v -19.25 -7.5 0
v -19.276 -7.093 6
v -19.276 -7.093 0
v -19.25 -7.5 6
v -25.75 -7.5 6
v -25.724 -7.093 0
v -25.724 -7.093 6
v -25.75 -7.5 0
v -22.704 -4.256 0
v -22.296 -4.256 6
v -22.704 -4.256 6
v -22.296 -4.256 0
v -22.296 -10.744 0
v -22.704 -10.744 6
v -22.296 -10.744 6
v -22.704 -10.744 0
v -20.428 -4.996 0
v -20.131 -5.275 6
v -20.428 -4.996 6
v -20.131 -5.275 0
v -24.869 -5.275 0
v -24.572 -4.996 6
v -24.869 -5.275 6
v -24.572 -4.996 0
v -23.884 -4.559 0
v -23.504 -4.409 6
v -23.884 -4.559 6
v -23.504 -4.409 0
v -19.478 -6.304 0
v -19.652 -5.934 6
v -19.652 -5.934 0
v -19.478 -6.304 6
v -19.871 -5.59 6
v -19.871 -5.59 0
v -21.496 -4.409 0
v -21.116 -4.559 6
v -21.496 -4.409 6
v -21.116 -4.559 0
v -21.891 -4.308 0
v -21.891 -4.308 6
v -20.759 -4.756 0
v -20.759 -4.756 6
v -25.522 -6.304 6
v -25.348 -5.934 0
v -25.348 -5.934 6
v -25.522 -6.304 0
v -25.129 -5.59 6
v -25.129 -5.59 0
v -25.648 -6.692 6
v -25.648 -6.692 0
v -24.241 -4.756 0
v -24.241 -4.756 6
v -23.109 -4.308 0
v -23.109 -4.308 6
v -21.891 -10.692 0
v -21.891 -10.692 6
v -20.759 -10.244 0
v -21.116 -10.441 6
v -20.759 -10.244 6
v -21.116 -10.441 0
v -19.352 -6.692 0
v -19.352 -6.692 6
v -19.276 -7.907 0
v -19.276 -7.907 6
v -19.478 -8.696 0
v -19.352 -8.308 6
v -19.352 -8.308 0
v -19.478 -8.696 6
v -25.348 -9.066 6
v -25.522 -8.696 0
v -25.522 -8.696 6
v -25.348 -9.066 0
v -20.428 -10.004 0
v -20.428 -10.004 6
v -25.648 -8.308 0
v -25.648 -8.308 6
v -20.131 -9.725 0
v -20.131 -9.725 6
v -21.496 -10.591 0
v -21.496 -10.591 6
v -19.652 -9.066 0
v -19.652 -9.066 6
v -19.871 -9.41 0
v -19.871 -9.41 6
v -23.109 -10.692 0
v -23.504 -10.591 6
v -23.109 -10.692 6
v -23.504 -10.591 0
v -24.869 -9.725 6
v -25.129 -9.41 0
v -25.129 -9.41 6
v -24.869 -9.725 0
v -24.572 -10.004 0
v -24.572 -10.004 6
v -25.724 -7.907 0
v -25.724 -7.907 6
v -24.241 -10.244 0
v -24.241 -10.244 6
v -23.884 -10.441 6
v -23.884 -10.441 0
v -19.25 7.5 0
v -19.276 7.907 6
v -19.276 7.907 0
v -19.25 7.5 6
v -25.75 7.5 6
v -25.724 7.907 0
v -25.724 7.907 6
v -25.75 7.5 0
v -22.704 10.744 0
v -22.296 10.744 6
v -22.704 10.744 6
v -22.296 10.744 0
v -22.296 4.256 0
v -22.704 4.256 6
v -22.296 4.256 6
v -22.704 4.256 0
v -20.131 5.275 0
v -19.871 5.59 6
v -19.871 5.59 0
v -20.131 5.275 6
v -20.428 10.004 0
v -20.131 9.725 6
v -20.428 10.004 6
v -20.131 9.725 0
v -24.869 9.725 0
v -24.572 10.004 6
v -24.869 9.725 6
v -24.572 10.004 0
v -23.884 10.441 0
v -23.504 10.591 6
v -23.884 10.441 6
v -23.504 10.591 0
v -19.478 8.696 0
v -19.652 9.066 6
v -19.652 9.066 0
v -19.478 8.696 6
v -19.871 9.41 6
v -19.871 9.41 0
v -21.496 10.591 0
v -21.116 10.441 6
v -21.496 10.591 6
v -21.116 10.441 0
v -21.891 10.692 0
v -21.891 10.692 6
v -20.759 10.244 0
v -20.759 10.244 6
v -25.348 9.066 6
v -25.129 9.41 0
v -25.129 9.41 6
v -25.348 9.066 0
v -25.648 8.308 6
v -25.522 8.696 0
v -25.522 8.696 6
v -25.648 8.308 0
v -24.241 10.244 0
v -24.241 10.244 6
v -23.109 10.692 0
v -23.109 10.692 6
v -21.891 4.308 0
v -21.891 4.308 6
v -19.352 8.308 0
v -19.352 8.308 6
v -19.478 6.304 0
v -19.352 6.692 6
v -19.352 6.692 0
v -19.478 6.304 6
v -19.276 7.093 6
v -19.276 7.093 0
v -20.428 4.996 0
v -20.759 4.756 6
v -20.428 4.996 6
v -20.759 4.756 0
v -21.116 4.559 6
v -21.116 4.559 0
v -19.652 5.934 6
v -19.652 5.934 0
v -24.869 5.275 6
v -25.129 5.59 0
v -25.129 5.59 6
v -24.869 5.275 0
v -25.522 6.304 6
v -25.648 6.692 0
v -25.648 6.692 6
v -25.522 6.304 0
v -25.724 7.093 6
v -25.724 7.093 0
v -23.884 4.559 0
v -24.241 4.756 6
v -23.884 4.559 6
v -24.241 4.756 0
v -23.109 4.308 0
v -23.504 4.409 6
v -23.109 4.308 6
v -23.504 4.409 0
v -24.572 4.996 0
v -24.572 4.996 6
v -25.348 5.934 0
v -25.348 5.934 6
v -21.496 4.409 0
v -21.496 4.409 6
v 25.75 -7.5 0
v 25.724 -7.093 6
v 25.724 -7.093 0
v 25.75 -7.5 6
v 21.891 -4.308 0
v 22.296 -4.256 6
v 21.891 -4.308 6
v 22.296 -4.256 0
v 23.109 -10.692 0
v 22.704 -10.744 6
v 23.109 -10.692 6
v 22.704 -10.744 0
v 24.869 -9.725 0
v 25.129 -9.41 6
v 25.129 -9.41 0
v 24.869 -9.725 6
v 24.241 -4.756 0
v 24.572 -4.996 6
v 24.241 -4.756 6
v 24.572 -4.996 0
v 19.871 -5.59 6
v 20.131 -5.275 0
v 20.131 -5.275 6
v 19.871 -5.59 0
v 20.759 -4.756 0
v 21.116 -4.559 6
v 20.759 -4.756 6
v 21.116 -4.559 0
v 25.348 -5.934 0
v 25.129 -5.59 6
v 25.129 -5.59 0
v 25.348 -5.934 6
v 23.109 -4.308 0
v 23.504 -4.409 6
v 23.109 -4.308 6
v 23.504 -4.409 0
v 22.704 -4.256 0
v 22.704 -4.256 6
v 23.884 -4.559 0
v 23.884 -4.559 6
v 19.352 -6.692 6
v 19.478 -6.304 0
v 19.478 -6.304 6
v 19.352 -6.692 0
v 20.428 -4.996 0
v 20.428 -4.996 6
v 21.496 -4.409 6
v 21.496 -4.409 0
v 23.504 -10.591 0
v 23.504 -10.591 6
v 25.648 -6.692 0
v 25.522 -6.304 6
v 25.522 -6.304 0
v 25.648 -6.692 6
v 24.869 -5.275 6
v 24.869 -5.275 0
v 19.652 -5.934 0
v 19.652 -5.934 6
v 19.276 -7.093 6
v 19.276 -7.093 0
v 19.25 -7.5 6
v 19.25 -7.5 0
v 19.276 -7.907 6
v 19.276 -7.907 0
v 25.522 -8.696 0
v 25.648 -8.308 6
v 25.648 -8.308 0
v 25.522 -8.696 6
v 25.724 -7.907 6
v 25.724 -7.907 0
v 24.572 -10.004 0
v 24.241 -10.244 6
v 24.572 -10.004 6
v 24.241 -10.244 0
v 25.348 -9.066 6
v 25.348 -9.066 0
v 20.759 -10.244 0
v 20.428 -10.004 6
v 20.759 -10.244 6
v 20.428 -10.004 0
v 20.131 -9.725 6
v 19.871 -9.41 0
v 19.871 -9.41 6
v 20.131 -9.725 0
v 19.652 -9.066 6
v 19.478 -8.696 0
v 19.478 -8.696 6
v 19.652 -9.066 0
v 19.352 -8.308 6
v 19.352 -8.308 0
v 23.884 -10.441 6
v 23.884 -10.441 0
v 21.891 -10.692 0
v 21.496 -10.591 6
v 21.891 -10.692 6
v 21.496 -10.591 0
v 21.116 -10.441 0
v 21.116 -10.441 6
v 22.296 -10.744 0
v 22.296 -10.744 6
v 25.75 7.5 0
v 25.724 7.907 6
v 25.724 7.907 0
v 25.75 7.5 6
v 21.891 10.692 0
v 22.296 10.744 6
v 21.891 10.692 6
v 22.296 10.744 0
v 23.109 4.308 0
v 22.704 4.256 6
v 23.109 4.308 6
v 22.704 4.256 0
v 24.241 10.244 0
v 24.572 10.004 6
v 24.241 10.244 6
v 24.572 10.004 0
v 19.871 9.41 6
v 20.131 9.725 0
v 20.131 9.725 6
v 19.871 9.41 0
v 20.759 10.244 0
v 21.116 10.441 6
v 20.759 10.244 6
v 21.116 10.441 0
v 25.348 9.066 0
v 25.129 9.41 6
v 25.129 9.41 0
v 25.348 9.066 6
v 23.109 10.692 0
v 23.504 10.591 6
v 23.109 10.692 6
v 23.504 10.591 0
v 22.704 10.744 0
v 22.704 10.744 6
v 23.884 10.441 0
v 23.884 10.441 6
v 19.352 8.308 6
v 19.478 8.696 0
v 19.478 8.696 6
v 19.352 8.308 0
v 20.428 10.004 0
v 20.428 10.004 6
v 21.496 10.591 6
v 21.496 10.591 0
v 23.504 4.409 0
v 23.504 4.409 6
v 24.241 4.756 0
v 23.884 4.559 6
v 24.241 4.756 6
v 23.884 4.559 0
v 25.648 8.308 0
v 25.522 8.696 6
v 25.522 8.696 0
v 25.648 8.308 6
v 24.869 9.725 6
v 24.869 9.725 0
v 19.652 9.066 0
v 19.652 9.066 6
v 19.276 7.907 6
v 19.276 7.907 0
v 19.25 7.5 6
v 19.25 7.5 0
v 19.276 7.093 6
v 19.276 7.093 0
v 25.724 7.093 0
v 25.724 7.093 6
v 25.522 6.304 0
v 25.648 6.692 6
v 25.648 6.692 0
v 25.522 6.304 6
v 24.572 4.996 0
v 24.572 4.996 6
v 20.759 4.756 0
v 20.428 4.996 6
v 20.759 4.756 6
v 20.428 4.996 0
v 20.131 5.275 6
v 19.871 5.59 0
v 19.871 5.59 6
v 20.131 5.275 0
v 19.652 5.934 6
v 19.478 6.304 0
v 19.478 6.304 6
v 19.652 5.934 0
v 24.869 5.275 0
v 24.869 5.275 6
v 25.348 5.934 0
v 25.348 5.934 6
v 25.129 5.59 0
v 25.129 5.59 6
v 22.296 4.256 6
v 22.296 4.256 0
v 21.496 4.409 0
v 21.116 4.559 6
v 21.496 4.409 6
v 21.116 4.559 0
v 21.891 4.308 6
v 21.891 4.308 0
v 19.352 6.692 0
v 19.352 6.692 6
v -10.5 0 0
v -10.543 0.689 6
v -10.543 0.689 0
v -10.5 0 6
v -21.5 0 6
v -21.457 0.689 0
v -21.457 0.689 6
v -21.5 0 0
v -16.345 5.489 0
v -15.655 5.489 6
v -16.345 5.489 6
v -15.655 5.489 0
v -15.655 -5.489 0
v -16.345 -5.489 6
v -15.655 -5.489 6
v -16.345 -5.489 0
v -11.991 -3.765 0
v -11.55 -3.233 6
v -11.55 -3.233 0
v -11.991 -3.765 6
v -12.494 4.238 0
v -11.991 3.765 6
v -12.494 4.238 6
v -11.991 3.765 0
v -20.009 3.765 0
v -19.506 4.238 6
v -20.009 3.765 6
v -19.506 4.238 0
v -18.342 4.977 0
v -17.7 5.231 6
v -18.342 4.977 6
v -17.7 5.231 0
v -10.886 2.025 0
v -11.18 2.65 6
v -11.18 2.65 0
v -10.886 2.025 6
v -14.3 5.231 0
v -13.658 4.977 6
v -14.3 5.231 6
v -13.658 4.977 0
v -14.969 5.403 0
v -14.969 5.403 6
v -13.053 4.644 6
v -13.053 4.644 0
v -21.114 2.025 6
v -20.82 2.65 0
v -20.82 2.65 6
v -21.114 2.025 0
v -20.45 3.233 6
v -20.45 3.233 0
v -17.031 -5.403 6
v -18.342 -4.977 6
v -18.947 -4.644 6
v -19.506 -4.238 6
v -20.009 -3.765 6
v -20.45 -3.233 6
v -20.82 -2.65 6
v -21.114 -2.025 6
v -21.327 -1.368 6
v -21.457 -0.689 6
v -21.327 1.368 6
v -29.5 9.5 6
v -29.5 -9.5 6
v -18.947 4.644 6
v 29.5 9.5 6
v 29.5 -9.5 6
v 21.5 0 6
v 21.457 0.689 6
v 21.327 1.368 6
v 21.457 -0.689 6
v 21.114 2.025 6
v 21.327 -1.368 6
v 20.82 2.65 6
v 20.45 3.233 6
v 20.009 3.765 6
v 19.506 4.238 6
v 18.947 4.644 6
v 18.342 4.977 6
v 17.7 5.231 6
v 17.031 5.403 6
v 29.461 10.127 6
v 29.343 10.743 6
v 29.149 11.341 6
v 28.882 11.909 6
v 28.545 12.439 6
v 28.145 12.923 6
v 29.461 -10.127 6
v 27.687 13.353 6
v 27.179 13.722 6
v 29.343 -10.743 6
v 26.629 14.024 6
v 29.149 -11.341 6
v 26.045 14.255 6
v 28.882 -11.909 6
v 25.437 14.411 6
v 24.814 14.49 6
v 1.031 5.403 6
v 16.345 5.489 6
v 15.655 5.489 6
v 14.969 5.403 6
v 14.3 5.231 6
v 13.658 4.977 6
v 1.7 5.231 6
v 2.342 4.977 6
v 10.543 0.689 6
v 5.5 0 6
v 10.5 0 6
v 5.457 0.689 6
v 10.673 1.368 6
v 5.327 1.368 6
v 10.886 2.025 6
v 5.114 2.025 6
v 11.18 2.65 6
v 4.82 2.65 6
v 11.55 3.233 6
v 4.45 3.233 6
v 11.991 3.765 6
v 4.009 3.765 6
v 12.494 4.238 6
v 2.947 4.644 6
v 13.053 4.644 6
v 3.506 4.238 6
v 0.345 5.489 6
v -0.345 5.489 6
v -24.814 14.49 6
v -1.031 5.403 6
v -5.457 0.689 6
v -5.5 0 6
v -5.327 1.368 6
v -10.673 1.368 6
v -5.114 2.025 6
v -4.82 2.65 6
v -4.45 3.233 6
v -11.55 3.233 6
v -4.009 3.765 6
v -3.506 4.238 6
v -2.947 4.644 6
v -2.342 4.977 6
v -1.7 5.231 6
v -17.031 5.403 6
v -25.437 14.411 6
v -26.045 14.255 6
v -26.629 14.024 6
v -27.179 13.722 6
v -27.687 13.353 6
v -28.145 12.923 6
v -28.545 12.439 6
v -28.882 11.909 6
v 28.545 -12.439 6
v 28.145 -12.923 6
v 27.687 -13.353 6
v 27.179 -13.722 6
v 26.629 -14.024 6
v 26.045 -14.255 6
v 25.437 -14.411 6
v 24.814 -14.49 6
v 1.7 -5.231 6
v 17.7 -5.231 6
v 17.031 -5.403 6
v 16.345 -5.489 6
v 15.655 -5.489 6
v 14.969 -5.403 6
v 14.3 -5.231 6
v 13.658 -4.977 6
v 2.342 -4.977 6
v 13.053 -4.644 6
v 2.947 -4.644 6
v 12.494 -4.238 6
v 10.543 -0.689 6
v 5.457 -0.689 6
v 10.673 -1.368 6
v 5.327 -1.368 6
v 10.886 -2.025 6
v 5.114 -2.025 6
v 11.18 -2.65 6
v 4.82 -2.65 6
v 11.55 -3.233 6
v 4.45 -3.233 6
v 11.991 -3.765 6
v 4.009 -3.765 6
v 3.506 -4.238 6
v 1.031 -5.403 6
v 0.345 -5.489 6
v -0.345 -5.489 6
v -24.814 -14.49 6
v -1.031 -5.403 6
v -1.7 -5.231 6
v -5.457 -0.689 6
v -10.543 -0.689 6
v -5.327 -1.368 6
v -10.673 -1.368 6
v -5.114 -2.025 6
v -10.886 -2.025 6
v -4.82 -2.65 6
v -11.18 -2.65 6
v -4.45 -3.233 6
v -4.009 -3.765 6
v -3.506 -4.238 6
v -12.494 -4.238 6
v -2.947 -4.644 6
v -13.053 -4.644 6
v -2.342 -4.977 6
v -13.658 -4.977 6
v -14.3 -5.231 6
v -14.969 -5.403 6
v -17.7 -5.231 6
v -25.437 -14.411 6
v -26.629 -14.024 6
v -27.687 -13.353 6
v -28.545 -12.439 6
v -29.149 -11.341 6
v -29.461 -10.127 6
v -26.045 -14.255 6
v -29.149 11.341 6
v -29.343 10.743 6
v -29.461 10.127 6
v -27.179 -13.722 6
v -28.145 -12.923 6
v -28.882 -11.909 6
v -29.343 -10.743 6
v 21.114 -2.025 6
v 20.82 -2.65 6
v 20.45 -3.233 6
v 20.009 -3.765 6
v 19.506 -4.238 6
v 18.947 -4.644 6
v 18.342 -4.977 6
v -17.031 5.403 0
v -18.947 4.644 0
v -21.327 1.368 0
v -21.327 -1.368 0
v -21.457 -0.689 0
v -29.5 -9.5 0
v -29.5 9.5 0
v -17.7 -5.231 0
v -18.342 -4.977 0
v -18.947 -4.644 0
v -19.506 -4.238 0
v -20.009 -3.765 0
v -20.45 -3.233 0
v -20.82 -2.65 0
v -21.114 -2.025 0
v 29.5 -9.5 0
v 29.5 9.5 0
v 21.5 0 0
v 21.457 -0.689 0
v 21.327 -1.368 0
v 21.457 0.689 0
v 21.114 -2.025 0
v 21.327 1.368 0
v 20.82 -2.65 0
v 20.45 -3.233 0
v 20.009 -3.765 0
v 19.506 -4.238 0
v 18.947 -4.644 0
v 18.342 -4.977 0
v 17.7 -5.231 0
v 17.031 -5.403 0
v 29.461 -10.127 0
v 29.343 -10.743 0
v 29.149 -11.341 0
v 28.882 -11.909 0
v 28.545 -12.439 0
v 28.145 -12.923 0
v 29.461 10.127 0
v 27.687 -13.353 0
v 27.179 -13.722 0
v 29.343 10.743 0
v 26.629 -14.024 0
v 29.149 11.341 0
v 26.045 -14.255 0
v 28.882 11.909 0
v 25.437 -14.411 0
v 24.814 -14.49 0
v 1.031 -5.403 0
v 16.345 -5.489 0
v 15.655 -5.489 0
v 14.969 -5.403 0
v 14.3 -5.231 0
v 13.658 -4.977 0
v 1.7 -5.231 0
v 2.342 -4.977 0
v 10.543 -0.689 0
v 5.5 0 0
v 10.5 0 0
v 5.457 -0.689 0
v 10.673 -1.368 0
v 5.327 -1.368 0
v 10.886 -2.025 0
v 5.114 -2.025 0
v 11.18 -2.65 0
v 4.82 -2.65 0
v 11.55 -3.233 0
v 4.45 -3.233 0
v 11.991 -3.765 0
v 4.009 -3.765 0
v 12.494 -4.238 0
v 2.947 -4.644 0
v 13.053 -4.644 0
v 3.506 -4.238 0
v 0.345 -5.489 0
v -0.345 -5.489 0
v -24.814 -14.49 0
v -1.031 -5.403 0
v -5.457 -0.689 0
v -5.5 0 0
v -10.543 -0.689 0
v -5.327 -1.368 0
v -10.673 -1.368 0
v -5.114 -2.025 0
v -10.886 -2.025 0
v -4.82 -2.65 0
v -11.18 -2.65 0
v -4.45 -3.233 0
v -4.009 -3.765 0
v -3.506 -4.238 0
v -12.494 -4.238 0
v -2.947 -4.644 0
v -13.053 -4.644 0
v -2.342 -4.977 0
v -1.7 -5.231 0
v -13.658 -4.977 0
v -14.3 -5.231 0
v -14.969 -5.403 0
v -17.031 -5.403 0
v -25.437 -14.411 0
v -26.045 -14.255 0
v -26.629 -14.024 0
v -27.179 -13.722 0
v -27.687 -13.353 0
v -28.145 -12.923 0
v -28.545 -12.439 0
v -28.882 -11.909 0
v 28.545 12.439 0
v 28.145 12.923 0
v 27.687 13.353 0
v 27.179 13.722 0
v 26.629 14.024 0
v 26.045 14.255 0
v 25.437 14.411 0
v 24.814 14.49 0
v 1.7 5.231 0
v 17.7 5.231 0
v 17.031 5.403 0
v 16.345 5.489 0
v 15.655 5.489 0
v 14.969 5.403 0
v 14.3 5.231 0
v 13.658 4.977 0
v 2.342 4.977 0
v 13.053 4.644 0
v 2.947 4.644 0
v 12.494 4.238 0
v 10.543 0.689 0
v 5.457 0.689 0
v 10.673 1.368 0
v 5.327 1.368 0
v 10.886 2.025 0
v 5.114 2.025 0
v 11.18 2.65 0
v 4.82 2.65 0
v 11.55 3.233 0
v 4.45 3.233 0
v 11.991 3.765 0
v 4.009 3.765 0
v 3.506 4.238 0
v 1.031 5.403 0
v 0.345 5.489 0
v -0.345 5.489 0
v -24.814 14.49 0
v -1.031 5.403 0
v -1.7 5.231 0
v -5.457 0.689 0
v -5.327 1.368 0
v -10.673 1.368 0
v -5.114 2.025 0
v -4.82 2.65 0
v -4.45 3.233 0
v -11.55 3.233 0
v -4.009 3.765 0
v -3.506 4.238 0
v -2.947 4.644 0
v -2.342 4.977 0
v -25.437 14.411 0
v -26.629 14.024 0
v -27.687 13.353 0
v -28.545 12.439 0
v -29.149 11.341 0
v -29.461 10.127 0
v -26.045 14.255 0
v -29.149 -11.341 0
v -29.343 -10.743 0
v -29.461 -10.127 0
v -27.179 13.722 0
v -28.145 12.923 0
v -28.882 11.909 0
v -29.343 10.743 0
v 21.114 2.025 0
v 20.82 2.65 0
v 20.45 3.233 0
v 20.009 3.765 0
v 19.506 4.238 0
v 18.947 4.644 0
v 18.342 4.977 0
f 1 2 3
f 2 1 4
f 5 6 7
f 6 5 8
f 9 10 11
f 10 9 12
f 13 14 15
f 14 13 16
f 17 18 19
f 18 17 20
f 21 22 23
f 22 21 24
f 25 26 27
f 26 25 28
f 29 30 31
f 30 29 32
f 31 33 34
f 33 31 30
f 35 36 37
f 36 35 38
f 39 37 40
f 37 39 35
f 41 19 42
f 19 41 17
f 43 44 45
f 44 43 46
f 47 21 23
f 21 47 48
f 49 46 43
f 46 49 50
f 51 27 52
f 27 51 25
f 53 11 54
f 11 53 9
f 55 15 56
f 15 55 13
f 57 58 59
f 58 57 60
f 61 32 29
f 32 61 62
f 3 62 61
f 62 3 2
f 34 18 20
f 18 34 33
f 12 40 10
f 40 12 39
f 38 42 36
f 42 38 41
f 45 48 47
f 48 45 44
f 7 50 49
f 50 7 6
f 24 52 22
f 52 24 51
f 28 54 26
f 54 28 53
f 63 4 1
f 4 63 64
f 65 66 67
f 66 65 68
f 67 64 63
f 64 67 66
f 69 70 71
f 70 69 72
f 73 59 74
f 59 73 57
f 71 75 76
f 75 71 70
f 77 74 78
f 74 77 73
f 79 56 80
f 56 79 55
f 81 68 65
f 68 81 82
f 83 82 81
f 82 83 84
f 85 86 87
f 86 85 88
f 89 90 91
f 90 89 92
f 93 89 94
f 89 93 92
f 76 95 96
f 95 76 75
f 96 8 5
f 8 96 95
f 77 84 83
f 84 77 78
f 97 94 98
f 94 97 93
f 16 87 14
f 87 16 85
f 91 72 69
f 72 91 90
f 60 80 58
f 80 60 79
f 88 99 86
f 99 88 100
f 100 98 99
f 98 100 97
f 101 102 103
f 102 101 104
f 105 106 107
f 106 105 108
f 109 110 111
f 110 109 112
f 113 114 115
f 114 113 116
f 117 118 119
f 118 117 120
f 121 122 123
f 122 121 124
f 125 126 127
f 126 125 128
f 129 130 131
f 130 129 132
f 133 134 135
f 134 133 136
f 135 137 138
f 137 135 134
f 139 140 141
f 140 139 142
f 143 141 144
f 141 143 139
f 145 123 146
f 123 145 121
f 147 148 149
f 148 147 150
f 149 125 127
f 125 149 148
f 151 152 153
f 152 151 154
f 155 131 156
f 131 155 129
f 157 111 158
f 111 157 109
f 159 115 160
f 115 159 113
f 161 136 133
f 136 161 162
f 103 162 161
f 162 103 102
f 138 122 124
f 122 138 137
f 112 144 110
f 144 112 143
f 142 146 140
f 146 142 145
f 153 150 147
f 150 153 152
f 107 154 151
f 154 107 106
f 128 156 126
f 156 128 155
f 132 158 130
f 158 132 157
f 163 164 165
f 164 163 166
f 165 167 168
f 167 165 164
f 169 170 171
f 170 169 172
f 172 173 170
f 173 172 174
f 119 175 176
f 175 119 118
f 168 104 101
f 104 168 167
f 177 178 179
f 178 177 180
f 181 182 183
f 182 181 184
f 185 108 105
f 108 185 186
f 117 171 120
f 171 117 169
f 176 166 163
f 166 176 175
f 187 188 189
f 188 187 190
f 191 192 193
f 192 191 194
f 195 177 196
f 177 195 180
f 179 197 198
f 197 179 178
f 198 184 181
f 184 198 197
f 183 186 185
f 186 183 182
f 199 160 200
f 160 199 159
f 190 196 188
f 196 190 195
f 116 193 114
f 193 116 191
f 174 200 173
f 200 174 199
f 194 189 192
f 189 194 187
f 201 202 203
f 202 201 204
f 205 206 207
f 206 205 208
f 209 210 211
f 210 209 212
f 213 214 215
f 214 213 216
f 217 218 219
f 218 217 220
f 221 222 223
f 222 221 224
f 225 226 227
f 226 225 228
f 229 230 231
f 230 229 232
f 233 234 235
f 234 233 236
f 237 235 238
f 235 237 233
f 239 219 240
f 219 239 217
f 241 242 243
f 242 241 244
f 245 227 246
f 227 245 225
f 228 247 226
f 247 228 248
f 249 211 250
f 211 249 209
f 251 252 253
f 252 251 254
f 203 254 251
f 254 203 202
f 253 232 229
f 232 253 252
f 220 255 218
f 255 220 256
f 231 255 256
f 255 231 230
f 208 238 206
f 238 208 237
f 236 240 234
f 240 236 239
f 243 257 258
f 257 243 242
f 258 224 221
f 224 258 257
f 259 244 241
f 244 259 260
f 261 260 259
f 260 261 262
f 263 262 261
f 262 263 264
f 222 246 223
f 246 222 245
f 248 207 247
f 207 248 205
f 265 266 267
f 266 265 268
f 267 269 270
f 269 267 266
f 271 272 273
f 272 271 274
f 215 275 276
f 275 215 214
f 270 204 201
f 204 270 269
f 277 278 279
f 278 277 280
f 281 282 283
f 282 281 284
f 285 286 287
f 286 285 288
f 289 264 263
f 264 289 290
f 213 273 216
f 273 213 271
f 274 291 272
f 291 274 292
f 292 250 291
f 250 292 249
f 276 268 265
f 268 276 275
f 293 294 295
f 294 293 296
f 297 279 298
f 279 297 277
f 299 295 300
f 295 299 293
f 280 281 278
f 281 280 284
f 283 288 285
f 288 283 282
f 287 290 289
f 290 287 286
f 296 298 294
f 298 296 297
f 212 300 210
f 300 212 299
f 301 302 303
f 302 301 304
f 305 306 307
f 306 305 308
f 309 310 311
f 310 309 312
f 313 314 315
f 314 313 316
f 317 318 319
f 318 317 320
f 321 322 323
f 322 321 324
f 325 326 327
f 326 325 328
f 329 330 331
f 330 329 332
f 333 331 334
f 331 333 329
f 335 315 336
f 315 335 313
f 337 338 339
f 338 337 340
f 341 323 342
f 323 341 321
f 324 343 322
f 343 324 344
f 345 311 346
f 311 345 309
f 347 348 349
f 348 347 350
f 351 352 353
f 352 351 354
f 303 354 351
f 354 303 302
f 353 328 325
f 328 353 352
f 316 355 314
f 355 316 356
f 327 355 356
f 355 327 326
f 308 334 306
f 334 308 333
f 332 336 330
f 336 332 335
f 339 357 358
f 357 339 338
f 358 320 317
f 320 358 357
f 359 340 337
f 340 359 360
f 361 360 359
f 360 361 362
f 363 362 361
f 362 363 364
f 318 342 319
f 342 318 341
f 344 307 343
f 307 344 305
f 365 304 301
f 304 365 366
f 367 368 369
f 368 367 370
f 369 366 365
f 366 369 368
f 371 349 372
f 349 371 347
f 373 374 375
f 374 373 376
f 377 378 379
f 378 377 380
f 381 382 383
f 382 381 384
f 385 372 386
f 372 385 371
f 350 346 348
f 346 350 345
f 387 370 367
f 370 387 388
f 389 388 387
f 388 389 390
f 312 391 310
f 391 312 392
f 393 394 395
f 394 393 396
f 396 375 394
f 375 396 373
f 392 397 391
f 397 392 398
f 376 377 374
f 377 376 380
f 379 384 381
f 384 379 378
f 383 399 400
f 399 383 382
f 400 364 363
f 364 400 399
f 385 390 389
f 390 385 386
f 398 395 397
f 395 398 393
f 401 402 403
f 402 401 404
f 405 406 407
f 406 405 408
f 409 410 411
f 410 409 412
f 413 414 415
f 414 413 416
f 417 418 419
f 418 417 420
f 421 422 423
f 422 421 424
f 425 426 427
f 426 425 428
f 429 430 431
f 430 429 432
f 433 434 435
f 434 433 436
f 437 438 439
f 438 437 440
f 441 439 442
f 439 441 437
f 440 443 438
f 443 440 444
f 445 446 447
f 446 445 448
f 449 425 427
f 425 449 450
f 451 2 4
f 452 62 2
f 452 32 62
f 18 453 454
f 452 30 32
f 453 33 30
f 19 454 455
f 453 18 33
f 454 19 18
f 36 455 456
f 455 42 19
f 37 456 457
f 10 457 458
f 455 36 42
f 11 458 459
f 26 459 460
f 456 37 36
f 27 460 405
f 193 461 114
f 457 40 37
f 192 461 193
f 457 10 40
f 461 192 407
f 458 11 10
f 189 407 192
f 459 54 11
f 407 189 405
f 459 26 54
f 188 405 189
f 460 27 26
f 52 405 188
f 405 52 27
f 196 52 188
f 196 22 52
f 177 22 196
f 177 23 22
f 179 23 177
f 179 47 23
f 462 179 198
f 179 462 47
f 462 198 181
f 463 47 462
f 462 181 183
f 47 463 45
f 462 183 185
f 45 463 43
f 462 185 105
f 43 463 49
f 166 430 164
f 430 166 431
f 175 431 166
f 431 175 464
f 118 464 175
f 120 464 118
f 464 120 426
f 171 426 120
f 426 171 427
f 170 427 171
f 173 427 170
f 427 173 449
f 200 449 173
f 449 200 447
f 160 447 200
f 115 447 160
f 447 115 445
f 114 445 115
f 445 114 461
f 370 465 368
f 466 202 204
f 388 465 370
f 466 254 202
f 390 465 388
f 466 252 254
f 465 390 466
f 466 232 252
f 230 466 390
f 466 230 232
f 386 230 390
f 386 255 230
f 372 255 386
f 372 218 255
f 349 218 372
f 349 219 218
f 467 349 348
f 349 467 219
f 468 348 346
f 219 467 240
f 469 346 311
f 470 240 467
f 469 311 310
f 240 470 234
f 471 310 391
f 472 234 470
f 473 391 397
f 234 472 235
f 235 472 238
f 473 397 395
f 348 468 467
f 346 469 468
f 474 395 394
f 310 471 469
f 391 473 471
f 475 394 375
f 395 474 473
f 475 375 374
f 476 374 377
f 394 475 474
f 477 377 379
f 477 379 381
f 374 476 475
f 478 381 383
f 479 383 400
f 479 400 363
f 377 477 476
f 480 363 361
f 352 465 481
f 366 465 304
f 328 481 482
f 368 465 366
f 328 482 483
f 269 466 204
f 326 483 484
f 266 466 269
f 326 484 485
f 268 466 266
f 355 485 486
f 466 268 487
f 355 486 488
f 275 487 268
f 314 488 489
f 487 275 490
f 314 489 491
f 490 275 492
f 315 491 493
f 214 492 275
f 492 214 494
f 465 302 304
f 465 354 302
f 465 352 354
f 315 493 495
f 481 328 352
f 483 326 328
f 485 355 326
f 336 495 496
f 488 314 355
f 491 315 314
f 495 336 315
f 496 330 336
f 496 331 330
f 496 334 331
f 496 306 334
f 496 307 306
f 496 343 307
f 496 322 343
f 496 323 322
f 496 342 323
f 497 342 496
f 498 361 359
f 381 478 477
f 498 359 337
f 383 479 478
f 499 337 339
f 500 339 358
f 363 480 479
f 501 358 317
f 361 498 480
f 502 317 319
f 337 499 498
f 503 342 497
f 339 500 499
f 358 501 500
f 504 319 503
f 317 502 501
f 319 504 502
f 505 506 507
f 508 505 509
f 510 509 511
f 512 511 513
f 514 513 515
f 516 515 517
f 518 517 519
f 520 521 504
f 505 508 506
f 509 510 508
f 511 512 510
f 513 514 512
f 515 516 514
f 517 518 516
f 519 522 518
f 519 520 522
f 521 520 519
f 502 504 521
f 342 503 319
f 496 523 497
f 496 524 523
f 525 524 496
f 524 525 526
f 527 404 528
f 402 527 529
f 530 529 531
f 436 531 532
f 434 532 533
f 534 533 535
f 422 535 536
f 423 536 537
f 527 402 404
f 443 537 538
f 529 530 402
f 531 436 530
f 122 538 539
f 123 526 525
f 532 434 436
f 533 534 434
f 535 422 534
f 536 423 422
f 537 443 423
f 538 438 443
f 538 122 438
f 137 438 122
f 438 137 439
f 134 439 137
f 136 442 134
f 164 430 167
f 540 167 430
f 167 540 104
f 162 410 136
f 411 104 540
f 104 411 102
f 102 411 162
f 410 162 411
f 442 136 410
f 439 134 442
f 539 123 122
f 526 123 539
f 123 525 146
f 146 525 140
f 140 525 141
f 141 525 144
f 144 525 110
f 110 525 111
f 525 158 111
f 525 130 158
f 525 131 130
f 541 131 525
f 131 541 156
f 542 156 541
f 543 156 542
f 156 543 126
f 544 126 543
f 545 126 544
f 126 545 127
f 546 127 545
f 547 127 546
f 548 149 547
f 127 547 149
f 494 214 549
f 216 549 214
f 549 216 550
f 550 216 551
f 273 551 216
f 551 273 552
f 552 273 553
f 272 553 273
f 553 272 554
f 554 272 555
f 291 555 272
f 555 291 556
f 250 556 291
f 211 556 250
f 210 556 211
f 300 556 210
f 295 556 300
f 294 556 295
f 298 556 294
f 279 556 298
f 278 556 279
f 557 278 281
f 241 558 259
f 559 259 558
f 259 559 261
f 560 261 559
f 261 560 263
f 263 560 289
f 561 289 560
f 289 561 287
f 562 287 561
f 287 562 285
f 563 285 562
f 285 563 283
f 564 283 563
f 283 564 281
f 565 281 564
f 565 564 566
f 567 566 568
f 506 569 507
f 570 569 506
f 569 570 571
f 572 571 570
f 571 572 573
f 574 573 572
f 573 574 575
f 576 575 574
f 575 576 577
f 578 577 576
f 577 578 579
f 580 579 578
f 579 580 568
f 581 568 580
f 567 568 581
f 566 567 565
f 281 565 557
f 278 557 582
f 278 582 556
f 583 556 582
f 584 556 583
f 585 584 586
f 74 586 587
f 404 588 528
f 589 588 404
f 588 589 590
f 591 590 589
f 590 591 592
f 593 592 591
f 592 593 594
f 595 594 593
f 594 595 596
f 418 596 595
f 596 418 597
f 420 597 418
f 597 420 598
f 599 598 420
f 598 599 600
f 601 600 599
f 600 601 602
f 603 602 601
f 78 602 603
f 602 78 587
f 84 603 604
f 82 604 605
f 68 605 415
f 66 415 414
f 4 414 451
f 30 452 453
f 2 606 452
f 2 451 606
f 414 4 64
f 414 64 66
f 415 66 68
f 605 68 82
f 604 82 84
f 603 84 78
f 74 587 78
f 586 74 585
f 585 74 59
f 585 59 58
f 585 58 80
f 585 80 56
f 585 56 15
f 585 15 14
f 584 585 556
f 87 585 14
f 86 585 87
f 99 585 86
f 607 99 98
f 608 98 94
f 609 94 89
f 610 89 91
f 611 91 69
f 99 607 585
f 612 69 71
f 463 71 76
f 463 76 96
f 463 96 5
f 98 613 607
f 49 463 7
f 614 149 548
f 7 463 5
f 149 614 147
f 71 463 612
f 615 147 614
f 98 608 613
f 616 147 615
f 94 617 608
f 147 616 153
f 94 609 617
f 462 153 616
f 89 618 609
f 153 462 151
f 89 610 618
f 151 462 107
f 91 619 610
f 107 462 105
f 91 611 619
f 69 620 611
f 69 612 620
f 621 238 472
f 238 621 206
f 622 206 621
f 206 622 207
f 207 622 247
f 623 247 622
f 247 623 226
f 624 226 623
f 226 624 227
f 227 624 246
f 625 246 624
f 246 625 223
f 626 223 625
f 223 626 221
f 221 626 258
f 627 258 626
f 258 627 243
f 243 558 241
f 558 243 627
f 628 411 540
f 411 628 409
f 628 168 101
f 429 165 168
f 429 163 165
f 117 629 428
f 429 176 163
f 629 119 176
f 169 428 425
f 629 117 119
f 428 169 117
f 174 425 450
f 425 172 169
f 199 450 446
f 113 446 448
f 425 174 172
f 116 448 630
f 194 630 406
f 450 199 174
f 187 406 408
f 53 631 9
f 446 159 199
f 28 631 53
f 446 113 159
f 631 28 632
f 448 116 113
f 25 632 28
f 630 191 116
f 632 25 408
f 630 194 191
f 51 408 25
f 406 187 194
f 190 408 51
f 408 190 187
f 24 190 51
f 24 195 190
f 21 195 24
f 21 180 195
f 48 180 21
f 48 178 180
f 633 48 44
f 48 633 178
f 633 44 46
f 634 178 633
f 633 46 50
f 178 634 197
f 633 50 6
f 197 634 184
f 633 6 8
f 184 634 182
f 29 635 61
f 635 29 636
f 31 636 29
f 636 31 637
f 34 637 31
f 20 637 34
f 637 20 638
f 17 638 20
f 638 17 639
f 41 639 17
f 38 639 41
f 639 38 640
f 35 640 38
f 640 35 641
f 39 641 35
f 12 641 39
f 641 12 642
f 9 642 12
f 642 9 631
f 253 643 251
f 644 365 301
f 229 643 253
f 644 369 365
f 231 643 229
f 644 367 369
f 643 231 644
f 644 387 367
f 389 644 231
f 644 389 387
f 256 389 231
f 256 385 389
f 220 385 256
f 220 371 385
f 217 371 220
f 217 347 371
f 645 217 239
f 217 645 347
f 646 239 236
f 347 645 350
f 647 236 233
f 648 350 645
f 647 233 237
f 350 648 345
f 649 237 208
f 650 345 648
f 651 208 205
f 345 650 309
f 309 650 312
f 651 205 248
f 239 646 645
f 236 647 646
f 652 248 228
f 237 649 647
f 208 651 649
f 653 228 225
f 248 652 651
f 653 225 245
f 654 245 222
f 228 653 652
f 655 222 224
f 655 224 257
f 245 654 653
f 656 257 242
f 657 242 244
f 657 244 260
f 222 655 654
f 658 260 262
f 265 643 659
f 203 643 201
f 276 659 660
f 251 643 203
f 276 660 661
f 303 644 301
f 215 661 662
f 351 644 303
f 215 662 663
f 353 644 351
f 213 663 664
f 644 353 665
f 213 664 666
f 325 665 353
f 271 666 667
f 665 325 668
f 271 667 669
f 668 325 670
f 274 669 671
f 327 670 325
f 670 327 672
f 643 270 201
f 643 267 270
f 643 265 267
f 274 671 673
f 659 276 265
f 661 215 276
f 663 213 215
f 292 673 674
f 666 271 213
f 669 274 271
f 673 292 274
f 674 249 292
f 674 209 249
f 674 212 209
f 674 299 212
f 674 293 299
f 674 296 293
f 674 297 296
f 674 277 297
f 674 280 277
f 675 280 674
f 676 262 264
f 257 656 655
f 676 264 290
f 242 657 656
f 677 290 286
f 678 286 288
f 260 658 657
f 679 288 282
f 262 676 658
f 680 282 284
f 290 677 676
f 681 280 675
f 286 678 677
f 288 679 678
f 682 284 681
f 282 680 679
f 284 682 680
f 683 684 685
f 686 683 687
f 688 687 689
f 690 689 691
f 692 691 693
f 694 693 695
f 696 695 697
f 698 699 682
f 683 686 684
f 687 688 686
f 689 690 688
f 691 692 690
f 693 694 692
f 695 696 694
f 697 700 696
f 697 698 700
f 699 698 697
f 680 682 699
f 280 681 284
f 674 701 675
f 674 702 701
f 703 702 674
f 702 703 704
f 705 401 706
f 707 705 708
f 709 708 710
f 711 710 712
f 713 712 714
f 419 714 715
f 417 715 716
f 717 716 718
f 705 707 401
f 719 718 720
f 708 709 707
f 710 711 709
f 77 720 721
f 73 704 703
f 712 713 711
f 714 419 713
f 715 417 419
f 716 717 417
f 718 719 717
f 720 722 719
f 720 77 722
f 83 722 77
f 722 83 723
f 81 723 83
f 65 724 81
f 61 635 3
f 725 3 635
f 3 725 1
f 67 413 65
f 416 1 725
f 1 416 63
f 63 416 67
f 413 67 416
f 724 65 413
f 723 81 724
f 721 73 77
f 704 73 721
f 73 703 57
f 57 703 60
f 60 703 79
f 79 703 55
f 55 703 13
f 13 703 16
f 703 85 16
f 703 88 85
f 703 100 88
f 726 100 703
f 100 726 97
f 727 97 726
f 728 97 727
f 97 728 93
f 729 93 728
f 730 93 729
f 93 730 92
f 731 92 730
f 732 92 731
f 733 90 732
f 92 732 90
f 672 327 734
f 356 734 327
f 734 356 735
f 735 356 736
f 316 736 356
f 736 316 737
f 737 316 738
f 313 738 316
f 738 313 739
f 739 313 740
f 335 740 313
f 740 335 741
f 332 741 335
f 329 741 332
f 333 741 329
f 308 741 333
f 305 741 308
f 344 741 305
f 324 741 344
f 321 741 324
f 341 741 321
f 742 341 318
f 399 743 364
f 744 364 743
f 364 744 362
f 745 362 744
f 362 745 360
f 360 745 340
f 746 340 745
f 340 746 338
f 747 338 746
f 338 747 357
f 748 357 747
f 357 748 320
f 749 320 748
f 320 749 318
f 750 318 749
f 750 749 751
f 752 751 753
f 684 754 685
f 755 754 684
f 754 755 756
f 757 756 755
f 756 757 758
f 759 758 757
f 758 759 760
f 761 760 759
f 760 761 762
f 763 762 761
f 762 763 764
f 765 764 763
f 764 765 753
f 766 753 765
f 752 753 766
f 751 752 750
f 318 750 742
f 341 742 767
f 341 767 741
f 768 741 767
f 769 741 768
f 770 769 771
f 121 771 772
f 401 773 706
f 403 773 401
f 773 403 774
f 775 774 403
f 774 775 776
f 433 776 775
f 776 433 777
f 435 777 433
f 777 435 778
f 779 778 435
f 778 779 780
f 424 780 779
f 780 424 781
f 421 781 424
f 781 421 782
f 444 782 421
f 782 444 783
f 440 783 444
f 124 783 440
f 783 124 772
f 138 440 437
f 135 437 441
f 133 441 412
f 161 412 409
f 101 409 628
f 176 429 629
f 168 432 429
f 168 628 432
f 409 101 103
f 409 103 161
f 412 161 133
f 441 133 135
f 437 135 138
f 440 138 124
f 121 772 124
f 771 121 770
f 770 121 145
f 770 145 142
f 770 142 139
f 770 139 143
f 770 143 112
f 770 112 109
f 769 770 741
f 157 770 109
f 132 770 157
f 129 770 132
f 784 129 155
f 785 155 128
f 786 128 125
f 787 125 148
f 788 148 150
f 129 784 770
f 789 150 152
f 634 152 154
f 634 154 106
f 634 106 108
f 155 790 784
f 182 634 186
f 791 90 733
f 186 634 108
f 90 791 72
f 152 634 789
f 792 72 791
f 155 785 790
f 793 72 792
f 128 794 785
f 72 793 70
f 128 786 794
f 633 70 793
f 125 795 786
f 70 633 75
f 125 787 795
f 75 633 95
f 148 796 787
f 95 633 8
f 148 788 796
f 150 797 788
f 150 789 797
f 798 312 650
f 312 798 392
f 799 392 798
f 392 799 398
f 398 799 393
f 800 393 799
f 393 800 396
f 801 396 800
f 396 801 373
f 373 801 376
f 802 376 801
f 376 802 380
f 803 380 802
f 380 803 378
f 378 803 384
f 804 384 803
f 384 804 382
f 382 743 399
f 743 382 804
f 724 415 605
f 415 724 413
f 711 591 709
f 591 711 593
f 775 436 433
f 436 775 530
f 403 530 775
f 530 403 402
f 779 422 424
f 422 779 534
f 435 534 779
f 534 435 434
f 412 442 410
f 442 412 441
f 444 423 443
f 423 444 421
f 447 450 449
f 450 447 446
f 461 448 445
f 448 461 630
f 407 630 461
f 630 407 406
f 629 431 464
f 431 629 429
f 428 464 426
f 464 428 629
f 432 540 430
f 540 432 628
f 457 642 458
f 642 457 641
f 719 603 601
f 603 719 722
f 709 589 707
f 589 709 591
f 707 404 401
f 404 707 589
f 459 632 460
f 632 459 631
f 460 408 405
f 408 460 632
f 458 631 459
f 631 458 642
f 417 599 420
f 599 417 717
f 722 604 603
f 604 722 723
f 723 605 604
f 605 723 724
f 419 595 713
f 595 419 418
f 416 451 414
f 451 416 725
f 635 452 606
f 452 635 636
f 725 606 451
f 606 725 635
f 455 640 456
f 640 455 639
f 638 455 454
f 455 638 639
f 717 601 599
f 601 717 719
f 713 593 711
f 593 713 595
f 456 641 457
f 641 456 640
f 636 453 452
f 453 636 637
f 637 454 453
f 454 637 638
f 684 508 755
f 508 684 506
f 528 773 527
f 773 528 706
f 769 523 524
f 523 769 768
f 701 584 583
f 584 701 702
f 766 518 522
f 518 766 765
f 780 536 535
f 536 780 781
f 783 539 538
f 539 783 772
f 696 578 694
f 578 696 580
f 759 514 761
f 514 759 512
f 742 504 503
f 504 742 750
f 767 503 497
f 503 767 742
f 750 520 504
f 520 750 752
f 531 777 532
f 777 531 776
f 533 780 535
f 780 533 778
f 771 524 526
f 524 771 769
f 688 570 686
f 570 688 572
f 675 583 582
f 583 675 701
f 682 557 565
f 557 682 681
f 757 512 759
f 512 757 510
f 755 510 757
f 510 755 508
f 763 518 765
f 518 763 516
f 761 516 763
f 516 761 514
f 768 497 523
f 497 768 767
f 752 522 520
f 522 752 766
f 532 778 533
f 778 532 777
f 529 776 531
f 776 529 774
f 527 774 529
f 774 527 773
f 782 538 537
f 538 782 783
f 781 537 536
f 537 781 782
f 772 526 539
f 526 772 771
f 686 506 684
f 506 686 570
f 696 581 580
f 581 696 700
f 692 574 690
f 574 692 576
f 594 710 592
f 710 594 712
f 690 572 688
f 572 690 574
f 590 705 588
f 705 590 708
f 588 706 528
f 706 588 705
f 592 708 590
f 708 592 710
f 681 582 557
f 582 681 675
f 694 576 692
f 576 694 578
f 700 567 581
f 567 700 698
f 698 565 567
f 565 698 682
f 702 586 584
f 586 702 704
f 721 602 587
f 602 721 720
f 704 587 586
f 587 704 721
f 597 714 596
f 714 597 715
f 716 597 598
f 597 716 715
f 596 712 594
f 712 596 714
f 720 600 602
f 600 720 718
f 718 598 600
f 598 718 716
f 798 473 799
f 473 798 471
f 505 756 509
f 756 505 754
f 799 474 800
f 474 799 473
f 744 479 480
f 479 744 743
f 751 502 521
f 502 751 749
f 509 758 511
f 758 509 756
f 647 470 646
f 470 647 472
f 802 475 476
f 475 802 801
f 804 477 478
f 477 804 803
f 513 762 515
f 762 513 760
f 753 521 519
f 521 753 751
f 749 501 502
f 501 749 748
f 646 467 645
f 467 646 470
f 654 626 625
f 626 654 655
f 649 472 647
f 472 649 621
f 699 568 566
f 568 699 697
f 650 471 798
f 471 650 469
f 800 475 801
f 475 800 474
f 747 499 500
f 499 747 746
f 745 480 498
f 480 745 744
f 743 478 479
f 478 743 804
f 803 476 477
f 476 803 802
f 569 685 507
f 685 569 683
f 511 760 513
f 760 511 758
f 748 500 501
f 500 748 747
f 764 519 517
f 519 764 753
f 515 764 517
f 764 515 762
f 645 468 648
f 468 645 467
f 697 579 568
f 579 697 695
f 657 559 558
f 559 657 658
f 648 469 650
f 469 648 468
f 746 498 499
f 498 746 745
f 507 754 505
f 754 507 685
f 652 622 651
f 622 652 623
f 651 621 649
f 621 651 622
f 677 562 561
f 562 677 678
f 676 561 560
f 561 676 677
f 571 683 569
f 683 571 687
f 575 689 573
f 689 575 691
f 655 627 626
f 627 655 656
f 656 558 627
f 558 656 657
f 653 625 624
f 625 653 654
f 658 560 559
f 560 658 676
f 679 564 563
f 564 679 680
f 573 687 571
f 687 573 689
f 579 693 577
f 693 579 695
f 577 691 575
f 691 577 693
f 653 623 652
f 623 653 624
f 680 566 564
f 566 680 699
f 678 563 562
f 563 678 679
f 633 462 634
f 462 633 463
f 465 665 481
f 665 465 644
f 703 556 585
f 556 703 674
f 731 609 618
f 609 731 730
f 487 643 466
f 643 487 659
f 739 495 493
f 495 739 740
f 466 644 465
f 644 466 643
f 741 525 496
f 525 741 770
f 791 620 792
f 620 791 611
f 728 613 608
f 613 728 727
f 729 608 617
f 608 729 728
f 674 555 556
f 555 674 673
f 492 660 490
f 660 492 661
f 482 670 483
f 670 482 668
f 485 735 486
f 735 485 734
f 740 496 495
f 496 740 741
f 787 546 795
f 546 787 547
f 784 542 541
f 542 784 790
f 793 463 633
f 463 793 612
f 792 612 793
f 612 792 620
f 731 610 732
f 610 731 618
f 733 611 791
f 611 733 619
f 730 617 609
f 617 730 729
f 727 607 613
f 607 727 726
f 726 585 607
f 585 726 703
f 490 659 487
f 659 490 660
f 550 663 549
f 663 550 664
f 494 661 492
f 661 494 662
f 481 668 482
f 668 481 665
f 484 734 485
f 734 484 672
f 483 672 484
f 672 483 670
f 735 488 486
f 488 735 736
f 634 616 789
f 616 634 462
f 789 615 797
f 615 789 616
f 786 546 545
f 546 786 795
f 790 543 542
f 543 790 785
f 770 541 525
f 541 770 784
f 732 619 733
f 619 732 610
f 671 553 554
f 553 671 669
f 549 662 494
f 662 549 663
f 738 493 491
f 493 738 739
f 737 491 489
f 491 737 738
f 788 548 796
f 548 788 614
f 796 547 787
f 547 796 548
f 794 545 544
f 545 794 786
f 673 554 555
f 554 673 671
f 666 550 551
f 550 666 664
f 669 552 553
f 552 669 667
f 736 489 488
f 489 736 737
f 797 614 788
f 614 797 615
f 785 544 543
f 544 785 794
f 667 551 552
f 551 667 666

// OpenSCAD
$fn = 50;


difference() {
	union() {
		hull() {
			translate(v = [-24.5000000000, 9.5000000000, 0]) {
				cylinder(h = 6, r = 5);
			}
			translate(v = [24.5000000000, 9.5000000000, 0]) {
				cylinder(h = 6, r = 5);
			}
			translate(v = [-24.5000000000, -9.5000000000, 0]) {
				cylinder(h = 6, r = 5);
			}
			translate(v = [24.5000000000, -9.5000000000, 0]) {
				cylinder(h = 6, r = 5);
			}
		}
	}
	union() {
		#translate(v = [-22.5000000000, -7.5000000000, -100.0000000000]) {
			cylinder(h = 200, r = 3.2500000000);
		}
		#translate(v = [-22.5000000000, 7.5000000000, -100.0000000000]) {
			cylinder(h = 200, r = 3.2500000000);
		}
		#translate(v = [22.5000000000, -7.5000000000, -100.0000000000]) {
			cylinder(h = 200, r = 3.2500000000);
		}
		#translate(v = [22.5000000000, 7.5000000000, -100.0000000000]) {
			cylinder(h = 200, r = 3.2500000000);
		}
		#translate(v = [-16.0000000000, 0, 0]) {
			cylinder(h = 6, r = 5.5000000000);
		}
		#cylinder(h = 6, r = 5.5000000000);
		#translate(v = [16.0000000000, 0, 0]) {
			cylinder(h = 6, r = 5.5000000000);
		}
	}
}
